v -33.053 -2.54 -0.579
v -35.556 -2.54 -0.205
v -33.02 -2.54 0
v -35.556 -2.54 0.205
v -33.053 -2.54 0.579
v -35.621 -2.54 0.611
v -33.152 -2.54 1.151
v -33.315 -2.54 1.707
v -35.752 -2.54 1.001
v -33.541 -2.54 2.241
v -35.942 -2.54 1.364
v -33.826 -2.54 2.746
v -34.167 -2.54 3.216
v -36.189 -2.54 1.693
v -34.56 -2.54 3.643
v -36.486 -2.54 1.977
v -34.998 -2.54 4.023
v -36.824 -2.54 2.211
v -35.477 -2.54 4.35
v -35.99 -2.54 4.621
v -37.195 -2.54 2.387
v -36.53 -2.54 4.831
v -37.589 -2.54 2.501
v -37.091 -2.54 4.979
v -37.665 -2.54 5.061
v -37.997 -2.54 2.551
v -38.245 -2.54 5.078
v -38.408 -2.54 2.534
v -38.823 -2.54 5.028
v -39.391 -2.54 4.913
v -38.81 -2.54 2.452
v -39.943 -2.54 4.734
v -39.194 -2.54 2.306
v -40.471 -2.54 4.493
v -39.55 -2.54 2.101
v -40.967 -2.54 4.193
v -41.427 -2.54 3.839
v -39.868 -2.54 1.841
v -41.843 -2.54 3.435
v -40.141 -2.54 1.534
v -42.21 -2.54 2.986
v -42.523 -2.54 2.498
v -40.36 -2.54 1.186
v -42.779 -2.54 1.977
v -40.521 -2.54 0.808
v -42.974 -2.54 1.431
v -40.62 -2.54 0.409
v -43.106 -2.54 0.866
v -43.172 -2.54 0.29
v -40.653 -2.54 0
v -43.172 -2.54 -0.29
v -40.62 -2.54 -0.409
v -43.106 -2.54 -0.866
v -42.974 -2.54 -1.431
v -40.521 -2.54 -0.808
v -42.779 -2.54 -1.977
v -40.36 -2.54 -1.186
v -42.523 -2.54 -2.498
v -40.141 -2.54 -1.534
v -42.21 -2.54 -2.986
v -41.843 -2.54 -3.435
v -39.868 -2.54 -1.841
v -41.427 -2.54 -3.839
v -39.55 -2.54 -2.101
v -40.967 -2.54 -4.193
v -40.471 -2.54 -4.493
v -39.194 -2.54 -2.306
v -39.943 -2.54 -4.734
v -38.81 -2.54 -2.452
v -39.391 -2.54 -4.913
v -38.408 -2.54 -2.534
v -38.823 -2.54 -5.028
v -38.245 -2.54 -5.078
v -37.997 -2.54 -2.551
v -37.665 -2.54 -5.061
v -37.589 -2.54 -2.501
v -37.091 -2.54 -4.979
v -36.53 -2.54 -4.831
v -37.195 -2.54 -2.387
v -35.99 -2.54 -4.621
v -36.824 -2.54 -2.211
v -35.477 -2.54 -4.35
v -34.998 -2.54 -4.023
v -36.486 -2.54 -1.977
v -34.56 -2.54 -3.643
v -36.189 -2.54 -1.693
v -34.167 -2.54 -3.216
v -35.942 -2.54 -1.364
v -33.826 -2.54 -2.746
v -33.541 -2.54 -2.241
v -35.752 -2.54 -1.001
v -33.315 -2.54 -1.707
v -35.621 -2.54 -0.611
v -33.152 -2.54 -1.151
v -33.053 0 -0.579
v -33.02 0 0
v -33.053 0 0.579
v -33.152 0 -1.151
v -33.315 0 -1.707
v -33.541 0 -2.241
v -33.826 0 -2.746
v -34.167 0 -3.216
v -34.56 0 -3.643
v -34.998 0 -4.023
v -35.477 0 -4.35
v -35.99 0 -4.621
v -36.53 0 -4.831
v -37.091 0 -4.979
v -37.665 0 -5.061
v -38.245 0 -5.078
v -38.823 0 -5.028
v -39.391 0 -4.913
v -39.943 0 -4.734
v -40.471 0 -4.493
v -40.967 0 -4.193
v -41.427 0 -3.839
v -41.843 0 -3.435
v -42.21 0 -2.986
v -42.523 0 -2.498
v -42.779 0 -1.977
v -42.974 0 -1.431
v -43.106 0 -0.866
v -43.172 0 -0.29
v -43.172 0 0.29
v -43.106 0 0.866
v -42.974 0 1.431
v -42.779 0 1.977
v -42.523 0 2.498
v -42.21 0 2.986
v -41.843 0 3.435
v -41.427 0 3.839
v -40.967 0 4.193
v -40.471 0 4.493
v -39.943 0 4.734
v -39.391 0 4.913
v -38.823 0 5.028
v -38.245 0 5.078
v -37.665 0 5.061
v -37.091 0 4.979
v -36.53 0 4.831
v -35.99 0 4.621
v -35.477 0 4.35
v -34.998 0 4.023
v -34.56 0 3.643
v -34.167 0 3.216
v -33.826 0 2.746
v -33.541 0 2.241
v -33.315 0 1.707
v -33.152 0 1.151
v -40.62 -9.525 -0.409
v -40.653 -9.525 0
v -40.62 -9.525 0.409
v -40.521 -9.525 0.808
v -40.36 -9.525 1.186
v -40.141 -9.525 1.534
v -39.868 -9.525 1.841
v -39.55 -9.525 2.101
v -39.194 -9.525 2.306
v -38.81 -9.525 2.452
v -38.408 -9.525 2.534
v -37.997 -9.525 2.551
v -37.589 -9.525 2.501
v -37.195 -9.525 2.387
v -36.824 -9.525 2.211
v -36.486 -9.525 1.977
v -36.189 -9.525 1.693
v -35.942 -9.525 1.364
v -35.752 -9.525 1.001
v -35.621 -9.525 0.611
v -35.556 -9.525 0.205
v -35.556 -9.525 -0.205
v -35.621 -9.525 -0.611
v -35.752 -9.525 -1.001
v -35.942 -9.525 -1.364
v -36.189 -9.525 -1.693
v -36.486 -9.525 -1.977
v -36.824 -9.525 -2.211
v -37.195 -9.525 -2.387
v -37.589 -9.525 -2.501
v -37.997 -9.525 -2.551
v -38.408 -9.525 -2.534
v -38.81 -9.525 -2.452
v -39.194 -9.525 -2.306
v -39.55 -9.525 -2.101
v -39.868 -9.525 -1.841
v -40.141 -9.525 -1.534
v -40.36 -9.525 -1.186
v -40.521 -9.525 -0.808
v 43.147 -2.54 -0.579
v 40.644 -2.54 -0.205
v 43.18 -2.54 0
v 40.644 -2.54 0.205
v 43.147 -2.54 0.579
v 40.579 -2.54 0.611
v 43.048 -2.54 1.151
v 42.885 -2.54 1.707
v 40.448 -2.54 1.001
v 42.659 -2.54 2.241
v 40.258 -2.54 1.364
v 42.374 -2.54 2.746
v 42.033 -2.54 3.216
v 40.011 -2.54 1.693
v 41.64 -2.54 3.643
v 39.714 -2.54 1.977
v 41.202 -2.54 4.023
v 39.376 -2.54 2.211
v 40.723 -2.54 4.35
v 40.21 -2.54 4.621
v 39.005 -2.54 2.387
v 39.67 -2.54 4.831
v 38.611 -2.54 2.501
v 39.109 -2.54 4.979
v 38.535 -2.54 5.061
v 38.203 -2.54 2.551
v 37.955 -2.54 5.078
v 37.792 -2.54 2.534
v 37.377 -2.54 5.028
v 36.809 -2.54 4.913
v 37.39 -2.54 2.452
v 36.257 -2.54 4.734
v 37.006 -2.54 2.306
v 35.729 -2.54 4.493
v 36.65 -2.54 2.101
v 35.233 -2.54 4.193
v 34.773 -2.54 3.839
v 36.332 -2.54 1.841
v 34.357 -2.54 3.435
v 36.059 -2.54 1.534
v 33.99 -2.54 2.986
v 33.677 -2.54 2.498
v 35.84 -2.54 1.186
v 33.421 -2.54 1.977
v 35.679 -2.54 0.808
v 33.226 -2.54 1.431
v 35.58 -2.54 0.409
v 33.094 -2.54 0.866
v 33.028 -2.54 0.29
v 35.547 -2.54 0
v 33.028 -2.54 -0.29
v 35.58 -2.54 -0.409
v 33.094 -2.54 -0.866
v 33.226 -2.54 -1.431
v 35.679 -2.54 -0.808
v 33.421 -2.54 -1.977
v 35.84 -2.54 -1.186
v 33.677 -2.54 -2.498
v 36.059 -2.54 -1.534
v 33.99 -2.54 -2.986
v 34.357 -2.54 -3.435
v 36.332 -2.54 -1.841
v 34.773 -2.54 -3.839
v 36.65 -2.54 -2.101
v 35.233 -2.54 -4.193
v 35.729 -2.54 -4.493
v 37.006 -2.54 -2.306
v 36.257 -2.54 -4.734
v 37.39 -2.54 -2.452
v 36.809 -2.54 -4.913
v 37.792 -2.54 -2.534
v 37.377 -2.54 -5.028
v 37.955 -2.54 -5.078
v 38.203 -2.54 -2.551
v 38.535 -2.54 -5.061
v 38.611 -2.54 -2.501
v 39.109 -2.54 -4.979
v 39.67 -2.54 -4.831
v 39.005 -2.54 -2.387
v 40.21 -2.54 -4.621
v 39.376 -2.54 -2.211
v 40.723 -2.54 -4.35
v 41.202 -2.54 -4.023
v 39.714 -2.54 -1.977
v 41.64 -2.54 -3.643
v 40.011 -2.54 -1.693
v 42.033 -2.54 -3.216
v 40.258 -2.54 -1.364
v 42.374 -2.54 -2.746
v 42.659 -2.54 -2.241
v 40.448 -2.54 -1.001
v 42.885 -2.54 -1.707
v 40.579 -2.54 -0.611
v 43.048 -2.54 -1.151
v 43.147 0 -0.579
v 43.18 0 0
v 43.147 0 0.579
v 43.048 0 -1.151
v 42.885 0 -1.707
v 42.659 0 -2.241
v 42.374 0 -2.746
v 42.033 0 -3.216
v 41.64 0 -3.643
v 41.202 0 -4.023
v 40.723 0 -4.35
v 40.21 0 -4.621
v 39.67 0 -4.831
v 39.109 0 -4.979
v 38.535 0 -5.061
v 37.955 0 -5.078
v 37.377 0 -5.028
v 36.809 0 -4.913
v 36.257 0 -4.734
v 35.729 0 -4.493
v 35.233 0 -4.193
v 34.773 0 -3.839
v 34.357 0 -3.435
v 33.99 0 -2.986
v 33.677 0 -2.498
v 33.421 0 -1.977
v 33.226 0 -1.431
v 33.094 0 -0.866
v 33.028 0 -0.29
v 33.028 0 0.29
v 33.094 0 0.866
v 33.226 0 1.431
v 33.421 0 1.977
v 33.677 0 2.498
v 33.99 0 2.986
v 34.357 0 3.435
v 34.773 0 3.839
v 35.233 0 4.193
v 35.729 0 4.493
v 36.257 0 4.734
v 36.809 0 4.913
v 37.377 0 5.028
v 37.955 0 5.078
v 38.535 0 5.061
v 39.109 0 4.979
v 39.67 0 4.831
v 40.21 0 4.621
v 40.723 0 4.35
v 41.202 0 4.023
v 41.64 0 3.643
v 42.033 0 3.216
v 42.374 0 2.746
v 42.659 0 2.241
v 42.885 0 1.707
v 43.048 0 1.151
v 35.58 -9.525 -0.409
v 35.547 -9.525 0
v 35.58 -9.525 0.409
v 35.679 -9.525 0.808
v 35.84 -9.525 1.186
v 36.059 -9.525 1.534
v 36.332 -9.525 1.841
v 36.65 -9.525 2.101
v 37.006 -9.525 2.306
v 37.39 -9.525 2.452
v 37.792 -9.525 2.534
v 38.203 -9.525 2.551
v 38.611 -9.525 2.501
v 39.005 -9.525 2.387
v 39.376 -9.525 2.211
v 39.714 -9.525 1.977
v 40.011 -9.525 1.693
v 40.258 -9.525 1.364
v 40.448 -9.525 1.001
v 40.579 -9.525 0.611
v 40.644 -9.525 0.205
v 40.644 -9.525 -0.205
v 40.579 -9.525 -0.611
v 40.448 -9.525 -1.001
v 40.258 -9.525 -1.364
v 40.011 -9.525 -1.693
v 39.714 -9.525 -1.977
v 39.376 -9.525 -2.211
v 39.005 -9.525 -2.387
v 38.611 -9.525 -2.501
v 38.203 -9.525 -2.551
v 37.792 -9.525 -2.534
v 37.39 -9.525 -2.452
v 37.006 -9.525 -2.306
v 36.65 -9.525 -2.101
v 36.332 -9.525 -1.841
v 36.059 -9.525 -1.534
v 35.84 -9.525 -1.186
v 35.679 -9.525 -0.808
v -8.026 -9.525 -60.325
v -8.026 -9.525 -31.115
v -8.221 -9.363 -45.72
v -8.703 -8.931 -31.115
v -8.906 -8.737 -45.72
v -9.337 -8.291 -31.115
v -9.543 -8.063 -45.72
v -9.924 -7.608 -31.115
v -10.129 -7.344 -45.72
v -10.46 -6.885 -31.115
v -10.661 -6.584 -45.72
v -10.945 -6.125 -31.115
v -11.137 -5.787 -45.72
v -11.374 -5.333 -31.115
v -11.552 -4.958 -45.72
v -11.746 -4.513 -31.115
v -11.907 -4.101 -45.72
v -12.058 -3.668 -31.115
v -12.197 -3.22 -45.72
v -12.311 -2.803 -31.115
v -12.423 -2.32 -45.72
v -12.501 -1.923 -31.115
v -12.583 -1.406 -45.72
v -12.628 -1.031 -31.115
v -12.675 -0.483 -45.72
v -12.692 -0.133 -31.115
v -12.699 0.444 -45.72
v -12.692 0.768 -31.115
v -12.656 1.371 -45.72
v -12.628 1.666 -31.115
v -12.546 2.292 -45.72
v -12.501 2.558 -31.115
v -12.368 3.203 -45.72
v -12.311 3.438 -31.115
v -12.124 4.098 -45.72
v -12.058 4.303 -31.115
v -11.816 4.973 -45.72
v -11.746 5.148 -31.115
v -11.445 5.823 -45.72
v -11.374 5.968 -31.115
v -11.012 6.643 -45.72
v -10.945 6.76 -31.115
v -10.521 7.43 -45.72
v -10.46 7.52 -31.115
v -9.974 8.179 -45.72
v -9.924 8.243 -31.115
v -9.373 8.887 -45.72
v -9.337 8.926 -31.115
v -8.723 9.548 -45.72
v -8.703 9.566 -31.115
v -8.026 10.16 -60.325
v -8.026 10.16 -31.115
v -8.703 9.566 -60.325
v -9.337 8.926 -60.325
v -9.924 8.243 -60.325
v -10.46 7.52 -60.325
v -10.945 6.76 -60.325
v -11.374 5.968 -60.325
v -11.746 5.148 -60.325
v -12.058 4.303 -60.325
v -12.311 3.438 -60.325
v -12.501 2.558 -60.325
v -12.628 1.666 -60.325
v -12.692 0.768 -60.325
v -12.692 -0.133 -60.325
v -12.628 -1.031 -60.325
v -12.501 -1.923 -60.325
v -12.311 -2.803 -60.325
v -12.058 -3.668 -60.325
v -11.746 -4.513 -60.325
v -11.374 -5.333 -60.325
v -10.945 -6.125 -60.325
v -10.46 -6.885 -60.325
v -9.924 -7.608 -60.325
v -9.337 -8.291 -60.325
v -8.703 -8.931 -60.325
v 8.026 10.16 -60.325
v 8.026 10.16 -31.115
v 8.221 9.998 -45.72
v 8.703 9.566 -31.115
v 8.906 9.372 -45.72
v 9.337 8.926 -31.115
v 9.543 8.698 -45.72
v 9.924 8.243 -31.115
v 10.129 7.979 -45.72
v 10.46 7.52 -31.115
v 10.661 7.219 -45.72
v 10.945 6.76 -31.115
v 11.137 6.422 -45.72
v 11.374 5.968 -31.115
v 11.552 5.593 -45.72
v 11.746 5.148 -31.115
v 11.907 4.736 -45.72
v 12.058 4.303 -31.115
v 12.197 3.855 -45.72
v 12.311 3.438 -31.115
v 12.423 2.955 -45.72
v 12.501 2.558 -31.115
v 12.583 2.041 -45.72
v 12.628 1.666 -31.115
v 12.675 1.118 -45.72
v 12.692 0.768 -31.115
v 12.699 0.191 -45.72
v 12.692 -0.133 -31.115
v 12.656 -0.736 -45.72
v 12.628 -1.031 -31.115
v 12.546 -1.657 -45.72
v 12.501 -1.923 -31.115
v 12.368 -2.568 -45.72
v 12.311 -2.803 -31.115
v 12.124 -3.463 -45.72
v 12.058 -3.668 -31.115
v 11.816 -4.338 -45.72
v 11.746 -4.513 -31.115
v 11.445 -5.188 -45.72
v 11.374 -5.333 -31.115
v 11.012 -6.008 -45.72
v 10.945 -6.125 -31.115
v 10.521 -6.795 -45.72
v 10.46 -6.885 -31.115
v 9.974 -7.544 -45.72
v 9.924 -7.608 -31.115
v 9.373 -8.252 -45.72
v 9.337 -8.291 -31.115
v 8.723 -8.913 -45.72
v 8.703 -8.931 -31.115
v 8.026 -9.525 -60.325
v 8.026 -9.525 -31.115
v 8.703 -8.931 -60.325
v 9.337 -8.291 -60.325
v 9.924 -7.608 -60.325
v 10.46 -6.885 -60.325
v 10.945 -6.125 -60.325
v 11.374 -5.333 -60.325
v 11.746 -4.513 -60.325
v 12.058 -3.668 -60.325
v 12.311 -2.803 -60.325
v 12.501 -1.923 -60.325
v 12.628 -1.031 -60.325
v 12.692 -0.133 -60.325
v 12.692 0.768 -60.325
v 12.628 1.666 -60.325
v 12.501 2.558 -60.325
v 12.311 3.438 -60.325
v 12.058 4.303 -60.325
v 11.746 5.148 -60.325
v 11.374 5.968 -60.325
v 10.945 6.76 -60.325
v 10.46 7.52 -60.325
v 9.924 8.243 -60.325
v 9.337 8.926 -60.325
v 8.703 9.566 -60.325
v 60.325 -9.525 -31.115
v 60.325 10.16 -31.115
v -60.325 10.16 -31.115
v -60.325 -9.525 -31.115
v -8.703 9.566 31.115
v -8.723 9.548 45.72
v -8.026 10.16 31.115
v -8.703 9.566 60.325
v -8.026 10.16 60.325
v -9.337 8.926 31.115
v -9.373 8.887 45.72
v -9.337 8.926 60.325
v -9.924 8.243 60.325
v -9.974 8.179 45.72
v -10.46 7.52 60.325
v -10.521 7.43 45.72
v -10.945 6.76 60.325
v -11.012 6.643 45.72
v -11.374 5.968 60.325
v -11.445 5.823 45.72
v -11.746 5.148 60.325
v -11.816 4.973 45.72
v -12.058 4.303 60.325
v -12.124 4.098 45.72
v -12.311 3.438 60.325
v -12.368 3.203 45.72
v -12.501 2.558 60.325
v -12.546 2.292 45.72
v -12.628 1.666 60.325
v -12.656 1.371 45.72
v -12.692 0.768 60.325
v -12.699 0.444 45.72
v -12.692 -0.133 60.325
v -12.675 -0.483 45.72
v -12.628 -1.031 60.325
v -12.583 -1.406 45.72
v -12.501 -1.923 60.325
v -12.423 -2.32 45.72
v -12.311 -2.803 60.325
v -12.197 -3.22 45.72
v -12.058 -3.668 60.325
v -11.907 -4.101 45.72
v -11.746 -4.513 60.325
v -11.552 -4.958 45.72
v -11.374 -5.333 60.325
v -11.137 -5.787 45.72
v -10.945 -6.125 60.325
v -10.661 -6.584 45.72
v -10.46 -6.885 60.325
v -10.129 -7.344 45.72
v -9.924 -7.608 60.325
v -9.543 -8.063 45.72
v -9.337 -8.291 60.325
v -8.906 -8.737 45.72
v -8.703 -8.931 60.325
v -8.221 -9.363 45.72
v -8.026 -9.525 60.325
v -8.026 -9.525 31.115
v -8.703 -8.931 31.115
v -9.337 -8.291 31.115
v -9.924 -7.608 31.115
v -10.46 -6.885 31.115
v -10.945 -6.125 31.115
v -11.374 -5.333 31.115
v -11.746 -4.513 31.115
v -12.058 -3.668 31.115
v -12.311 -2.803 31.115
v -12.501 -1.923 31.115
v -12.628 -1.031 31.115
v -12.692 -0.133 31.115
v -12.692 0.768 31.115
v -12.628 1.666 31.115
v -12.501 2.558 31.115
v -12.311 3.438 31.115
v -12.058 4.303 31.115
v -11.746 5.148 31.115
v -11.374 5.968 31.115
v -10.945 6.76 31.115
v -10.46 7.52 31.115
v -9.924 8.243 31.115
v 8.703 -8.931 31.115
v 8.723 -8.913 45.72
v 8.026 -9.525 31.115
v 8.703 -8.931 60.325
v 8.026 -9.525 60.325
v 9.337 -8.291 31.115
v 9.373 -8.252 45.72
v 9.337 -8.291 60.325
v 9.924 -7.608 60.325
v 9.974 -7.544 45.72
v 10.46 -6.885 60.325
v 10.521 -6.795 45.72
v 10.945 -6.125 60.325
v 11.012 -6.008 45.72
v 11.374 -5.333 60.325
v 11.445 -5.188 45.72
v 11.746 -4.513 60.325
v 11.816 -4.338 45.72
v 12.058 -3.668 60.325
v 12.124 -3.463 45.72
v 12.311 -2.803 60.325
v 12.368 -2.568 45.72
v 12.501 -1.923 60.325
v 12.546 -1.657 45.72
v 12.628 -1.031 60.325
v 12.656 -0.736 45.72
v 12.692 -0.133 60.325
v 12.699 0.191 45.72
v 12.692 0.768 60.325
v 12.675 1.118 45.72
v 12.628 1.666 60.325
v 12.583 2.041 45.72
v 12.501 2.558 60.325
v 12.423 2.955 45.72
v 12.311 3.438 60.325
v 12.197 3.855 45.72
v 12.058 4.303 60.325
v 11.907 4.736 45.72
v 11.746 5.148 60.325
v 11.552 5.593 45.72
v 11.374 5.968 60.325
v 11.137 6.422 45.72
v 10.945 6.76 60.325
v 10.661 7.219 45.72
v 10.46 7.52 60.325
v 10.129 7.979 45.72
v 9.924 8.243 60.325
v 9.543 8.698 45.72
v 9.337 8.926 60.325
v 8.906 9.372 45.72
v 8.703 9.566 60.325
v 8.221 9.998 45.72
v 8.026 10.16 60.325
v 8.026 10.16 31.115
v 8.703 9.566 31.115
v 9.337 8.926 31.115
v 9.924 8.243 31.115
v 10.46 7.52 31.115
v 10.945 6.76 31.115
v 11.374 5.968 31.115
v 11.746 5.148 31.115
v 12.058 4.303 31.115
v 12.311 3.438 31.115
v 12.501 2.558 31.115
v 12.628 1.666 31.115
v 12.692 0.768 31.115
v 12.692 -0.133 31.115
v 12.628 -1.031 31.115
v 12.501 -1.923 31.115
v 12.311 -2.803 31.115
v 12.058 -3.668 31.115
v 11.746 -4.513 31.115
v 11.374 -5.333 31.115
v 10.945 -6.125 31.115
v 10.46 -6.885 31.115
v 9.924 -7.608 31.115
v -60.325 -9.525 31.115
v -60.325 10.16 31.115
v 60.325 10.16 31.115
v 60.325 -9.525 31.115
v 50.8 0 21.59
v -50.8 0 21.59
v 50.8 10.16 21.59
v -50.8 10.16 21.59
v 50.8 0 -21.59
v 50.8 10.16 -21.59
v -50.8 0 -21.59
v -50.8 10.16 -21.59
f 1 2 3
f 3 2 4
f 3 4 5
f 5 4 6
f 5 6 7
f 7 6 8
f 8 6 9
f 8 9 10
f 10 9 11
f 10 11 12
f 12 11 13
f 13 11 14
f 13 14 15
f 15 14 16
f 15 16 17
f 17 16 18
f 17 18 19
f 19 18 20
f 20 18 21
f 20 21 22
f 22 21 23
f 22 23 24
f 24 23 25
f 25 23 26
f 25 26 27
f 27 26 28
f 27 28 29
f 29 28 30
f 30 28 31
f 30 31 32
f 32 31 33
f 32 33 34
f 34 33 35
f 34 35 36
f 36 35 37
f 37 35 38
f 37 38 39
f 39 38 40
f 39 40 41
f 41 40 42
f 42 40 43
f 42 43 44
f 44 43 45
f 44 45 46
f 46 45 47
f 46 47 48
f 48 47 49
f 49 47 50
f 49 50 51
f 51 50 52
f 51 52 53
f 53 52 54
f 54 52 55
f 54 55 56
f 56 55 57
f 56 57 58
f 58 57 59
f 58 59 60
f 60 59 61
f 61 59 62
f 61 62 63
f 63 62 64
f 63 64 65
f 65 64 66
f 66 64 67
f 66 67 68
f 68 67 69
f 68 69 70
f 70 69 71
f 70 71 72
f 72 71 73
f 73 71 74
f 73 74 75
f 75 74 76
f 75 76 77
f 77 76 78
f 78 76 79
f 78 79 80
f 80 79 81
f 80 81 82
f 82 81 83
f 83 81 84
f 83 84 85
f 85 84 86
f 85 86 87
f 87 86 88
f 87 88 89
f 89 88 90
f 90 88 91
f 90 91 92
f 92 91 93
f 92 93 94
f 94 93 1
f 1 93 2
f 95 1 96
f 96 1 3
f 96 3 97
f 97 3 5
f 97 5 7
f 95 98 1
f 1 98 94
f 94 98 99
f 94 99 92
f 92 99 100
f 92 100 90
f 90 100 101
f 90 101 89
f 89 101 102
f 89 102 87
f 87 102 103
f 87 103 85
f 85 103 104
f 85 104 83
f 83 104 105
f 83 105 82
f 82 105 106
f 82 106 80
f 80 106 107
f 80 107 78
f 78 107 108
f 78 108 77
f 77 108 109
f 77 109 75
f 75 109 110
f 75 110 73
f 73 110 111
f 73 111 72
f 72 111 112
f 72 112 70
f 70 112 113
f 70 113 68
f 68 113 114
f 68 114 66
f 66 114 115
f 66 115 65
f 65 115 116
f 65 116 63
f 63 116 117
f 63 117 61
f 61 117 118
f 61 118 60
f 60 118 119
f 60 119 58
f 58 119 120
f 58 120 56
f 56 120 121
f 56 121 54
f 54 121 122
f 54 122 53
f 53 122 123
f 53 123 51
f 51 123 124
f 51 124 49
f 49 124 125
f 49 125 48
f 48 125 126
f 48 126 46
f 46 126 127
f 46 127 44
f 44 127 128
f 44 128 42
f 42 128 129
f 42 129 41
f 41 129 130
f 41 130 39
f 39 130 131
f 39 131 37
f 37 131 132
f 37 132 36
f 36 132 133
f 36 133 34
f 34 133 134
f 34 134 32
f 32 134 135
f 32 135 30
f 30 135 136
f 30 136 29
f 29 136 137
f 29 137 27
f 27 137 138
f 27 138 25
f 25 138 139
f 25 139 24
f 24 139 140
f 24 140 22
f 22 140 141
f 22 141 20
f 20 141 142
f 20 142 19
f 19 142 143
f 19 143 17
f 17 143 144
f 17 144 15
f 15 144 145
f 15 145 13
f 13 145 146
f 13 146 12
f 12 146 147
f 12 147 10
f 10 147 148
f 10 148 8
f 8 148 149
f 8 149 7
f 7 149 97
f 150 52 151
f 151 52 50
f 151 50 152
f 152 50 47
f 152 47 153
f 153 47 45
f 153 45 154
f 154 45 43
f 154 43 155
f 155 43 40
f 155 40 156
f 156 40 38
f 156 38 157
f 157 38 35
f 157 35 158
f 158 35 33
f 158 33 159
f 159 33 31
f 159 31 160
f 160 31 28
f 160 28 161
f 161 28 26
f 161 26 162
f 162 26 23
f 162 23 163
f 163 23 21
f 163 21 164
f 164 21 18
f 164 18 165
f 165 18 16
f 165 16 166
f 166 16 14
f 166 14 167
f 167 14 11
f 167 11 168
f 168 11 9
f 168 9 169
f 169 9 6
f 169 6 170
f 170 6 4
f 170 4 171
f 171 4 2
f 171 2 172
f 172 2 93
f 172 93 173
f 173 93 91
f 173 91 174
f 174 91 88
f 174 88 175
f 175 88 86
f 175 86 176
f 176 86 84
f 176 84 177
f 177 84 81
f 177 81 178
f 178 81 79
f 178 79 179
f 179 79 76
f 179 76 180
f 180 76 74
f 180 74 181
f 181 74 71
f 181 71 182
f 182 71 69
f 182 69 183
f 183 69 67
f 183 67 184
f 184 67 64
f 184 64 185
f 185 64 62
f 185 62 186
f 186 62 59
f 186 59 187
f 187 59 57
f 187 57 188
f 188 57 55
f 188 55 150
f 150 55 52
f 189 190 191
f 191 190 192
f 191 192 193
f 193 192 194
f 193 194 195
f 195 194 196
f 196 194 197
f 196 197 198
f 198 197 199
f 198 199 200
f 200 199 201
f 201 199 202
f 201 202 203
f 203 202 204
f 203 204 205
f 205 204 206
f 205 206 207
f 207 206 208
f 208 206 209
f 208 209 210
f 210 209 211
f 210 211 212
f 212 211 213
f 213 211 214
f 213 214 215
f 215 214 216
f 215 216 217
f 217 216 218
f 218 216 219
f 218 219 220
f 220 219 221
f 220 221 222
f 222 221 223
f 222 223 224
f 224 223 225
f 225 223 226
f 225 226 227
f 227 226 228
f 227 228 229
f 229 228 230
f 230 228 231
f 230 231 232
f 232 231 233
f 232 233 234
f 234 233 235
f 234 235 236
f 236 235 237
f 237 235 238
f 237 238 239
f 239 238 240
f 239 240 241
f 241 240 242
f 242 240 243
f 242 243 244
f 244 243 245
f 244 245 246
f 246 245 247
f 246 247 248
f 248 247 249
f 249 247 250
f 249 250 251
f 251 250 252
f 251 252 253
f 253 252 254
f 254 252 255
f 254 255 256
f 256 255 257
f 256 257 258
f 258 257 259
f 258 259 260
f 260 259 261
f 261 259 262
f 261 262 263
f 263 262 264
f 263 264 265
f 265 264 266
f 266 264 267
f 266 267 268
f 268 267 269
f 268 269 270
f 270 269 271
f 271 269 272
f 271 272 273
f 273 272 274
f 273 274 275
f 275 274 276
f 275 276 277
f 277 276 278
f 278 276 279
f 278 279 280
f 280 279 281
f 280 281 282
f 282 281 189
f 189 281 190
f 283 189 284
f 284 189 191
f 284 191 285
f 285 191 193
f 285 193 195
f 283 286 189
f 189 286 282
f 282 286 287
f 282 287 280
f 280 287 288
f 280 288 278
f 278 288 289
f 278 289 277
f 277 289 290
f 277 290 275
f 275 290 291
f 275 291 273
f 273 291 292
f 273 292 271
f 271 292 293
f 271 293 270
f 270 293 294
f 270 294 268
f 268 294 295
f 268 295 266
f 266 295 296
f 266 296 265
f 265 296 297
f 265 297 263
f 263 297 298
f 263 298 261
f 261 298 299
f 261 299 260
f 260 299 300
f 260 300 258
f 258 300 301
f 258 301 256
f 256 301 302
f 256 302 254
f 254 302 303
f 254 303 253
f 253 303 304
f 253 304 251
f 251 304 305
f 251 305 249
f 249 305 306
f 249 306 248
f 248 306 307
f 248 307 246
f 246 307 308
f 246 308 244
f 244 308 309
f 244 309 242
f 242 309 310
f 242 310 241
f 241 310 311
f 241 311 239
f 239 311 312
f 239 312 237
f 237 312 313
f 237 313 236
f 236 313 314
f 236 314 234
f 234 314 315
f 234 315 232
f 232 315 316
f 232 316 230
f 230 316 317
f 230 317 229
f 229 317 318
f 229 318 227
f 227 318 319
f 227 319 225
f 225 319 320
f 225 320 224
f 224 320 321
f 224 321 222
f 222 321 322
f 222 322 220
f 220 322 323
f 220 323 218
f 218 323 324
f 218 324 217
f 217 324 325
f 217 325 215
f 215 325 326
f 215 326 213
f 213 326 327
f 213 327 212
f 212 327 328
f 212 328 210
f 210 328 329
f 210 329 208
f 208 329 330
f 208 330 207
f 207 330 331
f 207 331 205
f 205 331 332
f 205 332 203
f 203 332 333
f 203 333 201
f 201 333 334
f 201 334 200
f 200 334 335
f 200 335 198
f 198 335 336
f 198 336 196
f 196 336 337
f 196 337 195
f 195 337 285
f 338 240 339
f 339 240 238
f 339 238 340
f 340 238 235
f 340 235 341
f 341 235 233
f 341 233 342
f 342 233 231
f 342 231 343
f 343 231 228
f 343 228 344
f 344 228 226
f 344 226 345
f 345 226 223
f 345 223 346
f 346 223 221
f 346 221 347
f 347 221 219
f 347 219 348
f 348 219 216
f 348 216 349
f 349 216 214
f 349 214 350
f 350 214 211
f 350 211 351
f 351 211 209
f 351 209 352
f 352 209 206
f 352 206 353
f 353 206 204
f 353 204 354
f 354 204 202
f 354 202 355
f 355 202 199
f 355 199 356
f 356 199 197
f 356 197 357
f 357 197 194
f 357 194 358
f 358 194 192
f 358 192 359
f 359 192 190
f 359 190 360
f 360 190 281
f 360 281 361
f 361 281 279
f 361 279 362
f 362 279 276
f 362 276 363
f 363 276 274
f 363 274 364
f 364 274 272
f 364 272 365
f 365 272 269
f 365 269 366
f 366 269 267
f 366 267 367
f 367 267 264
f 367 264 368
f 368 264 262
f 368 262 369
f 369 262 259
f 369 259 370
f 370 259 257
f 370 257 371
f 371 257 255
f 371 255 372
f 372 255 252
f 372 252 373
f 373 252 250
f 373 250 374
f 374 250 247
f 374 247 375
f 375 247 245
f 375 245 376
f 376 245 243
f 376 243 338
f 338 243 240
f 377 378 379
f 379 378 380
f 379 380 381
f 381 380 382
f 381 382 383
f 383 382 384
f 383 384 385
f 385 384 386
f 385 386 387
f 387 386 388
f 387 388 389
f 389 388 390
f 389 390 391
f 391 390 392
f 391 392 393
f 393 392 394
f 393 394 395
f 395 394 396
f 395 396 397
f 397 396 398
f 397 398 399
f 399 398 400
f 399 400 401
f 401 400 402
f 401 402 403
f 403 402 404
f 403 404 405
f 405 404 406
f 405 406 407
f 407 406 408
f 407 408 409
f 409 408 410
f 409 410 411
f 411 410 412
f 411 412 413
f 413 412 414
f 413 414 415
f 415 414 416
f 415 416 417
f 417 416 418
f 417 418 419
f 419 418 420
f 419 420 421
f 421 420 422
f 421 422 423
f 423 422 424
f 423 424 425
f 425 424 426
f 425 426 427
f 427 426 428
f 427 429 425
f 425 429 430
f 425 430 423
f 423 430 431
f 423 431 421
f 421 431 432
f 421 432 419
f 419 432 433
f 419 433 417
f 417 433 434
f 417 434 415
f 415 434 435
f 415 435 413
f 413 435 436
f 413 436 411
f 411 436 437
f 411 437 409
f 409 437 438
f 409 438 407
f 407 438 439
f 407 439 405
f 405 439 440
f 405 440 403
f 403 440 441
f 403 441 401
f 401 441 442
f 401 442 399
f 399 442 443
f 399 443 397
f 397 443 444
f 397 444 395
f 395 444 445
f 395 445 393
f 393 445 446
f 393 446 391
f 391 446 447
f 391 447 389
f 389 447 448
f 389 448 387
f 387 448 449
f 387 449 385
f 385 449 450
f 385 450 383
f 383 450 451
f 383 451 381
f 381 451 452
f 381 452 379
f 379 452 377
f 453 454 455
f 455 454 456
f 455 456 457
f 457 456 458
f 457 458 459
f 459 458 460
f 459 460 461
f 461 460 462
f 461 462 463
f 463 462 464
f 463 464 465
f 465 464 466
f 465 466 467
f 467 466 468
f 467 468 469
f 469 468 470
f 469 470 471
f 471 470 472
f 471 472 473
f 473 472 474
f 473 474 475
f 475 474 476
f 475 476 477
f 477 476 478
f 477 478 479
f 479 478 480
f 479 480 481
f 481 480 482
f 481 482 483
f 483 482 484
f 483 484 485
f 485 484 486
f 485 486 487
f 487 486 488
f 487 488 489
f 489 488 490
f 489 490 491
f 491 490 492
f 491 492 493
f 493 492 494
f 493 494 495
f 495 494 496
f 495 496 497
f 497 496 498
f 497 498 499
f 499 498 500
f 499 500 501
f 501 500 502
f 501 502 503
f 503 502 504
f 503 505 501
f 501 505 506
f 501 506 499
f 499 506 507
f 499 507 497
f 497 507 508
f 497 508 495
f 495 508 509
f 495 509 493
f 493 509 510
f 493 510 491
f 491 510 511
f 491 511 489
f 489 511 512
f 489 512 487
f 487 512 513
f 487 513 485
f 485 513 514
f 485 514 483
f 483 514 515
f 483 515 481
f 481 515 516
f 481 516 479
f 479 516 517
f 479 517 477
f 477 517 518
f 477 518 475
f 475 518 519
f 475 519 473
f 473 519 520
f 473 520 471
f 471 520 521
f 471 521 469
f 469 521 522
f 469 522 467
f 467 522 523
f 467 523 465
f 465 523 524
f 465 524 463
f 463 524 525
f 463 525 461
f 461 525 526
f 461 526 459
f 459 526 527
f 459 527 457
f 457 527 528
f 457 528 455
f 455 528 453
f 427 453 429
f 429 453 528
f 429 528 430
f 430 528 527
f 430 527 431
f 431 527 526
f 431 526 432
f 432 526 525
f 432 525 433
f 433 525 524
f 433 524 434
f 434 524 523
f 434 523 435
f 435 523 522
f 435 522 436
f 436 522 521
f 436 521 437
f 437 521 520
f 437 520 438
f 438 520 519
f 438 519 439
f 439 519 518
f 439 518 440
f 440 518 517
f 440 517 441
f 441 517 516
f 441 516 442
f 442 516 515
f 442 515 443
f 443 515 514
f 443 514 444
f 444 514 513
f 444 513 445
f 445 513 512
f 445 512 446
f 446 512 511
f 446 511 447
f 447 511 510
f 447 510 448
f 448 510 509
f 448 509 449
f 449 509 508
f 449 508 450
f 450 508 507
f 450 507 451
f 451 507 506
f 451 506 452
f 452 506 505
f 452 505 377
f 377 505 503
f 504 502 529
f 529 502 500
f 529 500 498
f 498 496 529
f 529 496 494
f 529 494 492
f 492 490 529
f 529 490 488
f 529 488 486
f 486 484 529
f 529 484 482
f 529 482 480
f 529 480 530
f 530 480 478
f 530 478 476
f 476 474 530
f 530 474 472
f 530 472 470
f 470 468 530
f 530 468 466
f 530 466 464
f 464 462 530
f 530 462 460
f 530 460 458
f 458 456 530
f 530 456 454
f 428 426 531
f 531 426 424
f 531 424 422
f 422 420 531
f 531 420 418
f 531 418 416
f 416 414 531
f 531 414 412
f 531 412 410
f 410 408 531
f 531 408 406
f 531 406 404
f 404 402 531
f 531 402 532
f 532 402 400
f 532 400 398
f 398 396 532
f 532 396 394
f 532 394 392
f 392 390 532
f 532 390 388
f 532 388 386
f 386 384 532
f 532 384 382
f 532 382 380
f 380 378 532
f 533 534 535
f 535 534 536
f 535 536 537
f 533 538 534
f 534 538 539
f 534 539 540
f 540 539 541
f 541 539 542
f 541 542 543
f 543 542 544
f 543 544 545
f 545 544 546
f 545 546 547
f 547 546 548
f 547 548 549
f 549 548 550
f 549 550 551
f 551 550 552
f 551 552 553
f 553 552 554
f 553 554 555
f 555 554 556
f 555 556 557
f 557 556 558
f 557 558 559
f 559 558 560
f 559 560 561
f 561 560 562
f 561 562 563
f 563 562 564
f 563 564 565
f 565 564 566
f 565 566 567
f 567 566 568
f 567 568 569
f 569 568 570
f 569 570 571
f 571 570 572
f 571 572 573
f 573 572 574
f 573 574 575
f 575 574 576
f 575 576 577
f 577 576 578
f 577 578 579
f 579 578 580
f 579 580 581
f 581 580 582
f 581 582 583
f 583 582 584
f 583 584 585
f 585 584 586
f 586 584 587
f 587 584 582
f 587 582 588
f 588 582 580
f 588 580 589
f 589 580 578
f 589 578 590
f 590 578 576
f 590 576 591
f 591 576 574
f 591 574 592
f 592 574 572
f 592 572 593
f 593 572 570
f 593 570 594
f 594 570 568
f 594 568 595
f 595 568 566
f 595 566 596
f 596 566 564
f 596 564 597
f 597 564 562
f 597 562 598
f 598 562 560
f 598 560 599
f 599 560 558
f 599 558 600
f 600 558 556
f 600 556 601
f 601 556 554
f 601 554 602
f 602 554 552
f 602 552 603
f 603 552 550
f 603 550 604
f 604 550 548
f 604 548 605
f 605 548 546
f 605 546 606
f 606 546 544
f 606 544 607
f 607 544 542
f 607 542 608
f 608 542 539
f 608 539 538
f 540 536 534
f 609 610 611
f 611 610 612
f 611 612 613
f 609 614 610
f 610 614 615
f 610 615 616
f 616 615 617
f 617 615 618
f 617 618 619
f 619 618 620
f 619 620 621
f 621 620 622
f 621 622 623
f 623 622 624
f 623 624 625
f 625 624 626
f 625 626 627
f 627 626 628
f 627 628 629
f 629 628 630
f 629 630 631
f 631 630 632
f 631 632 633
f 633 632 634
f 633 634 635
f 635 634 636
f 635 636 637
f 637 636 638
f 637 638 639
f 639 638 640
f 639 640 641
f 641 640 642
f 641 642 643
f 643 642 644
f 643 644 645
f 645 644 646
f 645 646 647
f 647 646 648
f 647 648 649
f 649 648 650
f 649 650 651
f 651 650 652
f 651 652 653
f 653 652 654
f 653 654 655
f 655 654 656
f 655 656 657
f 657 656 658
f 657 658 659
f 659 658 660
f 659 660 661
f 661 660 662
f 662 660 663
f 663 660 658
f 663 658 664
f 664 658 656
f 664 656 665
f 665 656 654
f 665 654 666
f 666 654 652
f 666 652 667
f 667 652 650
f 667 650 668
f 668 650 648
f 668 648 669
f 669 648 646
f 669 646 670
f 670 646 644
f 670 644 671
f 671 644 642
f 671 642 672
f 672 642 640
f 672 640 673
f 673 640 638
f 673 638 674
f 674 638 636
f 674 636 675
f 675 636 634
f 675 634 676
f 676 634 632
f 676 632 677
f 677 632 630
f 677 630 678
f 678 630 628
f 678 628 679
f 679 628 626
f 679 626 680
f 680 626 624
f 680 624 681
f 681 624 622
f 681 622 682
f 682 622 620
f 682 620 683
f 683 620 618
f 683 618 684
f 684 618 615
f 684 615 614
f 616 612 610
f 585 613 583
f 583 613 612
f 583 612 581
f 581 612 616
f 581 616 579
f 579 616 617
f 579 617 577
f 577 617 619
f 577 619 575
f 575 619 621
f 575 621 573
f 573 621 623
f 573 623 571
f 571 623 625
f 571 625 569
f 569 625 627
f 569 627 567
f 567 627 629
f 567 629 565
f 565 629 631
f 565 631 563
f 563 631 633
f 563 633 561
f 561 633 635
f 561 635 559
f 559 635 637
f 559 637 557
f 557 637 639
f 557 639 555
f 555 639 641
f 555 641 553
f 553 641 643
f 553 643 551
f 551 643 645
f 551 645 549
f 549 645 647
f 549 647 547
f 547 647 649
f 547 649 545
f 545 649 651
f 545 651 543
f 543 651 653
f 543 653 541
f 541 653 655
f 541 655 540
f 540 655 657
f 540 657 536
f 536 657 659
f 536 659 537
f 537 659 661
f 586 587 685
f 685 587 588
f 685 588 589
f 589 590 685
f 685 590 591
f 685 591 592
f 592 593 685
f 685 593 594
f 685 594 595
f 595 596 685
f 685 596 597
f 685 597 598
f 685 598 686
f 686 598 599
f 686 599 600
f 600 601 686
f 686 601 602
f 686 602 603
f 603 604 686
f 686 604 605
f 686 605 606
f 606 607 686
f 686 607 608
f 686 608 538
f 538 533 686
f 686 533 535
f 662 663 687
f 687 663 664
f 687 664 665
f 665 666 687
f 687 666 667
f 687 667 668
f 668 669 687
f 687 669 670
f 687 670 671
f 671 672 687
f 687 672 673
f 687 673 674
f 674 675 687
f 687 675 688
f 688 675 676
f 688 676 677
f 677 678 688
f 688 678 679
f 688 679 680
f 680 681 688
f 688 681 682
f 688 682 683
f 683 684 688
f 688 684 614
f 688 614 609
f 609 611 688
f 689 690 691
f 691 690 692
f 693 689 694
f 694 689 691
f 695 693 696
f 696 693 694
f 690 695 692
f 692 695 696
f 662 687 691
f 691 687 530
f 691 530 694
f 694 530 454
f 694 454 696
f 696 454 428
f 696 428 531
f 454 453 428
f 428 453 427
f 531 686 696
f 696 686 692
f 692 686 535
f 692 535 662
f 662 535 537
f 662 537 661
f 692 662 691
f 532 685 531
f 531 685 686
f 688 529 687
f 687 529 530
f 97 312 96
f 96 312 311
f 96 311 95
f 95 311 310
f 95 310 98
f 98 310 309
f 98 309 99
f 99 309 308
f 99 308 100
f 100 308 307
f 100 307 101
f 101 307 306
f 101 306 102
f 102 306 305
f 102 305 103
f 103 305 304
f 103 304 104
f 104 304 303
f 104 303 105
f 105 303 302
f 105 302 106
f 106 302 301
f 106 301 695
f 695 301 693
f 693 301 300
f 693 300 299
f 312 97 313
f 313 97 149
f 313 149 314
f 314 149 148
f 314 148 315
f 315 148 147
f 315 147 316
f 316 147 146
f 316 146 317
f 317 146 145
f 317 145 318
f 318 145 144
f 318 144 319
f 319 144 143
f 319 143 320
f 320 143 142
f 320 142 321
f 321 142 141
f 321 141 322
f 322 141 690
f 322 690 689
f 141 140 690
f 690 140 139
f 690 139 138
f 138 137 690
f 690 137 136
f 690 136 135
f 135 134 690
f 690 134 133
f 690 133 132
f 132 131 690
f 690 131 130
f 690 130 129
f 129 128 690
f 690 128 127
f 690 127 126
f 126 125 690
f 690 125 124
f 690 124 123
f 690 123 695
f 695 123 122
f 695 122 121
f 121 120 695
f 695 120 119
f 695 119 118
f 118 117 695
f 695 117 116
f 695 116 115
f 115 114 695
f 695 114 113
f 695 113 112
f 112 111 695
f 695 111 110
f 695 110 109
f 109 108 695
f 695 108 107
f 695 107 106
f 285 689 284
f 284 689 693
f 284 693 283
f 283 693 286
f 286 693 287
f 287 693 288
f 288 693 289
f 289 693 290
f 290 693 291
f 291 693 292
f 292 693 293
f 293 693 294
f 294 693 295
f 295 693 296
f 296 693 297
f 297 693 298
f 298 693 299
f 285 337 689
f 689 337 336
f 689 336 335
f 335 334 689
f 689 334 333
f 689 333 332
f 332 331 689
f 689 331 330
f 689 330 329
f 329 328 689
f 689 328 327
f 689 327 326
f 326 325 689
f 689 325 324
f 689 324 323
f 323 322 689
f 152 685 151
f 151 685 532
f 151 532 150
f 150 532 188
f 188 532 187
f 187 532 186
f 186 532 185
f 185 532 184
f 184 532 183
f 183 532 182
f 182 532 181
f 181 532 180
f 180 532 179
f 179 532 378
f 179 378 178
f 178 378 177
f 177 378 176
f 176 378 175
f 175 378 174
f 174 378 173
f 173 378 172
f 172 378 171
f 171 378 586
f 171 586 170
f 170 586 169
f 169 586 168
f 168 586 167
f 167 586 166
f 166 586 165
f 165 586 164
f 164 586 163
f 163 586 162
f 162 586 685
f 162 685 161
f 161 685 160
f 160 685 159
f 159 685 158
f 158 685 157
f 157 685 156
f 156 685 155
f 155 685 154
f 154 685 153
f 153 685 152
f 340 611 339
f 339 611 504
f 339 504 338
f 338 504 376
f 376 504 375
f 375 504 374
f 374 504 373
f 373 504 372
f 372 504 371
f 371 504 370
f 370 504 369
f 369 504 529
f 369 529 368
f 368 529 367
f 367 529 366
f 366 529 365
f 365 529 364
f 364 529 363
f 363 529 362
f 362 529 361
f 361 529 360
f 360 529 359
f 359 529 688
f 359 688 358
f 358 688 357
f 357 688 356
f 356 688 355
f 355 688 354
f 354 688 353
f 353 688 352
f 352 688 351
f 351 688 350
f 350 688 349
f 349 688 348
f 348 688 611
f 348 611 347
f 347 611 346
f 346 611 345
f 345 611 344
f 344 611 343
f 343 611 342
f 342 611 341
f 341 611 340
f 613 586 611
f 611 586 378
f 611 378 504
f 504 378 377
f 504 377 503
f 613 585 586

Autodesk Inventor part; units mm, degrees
ref_plane "YZ Plane" through (0, 0, 0) normal (1, 0, 0) x (0, 1, 0)
ref_plane "XZ Plane" through (0, 0, 0) normal (0, 1, 0) x (-1, 0, 0)
ref_plane "XY Plane" through (0, 0, 0) normal (0, 0, 1) x (1, 0, 0)
sketch "Sketch1" plane through (0, 0, 0) normal (0, 1, 0) x (-1, 0, 0)
  line L0 (50.8, 21.59) -> (-50.8, 21.59)
  line L1 (-50.8, 21.59) -> (-50.8, -21.59)
  line L2 (-50.8, -21.59) -> (50.8, -21.59)
  line L3 (50.8, -21.59) -> (50.8, 21.59)
  line L4 (50.8, 21.59) -> (-50.8, -21.59) construction
  line L5 (-50.8, 21.59) -> (50.8, -21.59) construction
  line L6 (60.325, 31.115) -> (-60.325, 31.115)
  line L7 (-60.325, 31.115) -> (-60.325, -31.115)
  line L8 (-60.325, -31.115) -> (60.325, -31.115)
  line L9 (60.325, -31.115) -> (60.325, 31.115)
  line L10 (60.325, 31.115) -> (-60.325, -31.115) construction
  line L11 (-60.325, 31.115) -> (60.325, -31.115) construction
  point P0 (0, 0)
extrude "Extrusion1" add sketch "Sketch1" against normal blind 9.525 contours L3 L2 L1 L0 | L9 L8 L7 L6
extrude "Extrusion2" add sketch "Sketch1" along normal blind 10.16
sketch "Sketch4" plane through (-60.325, -9.525, 31.115) normal (0, 0, 1) x (1, 0, 0)
  line L0 (0, 0) -> (0, 19.685) projected
  line L1 (120.65, 0) -> (0, 0) projected
  line L2 (0, 19.685) -> (120.65, 19.685) projected
  line L3 (9.525, 19.685) -> (111.125, 19.685) projected
  line L4 (52.2991, 19.685) -> (68.3509, 19.685)
  line L5 (0, 0) -> (120.65, 0) projected
  line L6 (52.2991, 0) -> (68.3509, 0)
  arc A0 (52.2991, 19.685) -> (52.2991, 0) centre (60.325, 9.8425) ccw
  arc A1 (68.3509, 0) -> (68.3509, 19.685) centre (60.325, 9.8425) ccw
  point P0 (60.325, 9.525)
  dimension "d10" = 9.8425
extrude "Extrusion4" add sketch "Sketch4" along normal blind 29.21 contours A0 L2 A1 L1
mirror "Mirror1" about plane through (0, 0, 0) normal (0, 0, 1) of "Extrusion4"
sketch "Sketch5" plane through (0, 0, 0) normal (0, 1, 0) x (1, 0, 0)
  line L0 (-50.8, 21.59) -> (-50.8, -21.59) projected
  line L1 (50.8, -21.59) -> (50.8, 21.59) projected
  point P0 (0, 0)
  point P1 (-38.1, 0)
  point P2 (38.1, 0)
  dimension "postHoleCenter" = 12.7
  dimension "d16" = 12.7
hole "Hole1" at (-38.1, 0, 0) at (38.1, 0, 0) direction (0, -1, 0) diameter 5.1054 end through all counterbore diameter 10.16 counterbore depth 2.54 clearance for "Hex Machine Screw" size "#10" standard "Ansi Unified Screw Threads"
equation "\"d4\" = wallThickness"
equation "\"d10\" = 0.5 * outerHeight"
equation "\"d13\" = -0.5 * outerWidth + 0.5 * overallWidth"
equation "\"d16\" = postHoleCenter"
equation "\"wallThickness\" = 9.525"
equation "\"outerWidth\" = innerWidth + 2 * wallThickness"
equation "\"outerLength\" = innerLength + 2 * wallThickness"
equation "\"outerHeight\" = innerDepth + wallThickness"
equation "\"shortenForTestPrint\" = 76.2"
equation "\"overallWidth\" = 120.65"
equation "\"innerWidth\" = 43.18"
equation "\"innerLength\" = 101.6"
equation "\"innerDepth\" = 10.16"
properties part number "connectorToTubeBrackets02"
